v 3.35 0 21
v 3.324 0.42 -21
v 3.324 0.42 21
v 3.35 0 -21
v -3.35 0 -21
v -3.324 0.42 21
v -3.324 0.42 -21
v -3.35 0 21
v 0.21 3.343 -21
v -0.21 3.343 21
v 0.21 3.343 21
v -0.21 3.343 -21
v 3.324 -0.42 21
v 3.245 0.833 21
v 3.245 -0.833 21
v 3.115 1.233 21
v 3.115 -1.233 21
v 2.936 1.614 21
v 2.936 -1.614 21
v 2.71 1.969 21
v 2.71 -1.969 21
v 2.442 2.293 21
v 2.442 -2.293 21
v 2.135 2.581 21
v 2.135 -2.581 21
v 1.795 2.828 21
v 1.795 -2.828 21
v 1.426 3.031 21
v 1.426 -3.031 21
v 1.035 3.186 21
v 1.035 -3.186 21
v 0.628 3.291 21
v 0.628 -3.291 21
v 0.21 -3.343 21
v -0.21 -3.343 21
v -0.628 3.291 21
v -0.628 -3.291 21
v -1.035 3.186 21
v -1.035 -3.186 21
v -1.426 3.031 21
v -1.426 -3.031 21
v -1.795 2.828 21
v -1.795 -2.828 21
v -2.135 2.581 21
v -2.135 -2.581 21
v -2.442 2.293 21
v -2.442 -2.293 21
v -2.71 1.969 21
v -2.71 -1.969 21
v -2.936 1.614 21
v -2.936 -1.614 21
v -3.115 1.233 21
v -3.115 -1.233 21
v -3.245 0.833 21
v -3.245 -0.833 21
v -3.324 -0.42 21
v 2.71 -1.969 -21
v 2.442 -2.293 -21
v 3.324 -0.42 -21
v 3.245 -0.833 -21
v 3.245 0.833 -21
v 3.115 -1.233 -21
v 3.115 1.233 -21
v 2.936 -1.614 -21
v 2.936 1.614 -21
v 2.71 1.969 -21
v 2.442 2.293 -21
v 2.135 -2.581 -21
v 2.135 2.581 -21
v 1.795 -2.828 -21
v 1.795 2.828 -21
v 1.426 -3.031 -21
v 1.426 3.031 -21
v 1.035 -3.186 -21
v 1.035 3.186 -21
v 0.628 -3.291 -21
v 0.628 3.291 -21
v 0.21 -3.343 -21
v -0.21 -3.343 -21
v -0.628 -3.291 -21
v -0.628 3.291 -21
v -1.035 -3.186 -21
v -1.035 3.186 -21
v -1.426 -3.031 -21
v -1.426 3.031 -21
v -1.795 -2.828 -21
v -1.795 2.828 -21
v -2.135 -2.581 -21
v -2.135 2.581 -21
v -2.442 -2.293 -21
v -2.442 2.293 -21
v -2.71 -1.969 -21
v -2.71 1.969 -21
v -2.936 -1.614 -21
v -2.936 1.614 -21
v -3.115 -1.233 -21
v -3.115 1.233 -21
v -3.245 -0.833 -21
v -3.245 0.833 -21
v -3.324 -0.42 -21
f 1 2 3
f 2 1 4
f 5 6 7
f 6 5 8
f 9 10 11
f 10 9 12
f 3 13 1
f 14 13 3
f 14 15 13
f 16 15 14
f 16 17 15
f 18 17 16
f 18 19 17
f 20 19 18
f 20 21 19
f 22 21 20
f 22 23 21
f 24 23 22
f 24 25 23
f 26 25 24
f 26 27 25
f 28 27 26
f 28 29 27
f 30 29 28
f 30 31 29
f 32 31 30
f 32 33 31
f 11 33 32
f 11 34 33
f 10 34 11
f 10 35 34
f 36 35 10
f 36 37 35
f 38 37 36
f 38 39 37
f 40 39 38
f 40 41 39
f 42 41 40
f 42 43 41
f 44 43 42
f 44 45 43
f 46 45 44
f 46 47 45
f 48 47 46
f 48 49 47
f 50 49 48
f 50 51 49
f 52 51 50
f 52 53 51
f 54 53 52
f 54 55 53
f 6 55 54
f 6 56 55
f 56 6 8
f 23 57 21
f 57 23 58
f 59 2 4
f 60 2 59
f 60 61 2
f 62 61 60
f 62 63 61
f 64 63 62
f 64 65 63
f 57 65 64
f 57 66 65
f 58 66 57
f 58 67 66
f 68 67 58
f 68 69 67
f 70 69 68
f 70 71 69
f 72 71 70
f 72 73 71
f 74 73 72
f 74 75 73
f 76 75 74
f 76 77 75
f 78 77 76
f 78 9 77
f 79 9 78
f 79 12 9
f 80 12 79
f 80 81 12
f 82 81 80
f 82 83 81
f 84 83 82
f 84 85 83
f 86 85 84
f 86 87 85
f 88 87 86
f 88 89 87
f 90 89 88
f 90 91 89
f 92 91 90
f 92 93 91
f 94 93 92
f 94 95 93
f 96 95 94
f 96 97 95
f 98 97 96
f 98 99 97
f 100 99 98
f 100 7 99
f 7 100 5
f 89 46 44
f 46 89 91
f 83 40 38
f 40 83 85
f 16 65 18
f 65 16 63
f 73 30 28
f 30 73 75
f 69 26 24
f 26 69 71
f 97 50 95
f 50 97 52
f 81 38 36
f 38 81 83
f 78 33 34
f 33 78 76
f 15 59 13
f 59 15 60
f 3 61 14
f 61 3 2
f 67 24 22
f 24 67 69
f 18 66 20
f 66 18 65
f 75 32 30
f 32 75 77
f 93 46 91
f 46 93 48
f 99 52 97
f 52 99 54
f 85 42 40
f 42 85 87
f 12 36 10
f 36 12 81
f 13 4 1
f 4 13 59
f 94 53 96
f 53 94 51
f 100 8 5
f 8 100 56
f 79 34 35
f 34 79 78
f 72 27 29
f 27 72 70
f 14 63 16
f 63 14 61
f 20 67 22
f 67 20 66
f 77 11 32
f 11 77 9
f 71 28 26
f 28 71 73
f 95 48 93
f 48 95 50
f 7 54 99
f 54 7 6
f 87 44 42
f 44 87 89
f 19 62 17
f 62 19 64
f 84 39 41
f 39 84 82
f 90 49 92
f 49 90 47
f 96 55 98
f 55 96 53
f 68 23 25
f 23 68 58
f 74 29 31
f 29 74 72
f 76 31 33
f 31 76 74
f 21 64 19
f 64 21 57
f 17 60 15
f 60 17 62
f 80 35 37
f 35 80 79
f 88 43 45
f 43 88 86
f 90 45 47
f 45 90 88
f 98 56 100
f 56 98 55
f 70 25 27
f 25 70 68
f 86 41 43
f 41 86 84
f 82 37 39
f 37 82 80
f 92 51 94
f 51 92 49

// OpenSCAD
$fn = 50;


difference() {
	union() {
		translate(v = [0, 0, -21.0000000000]) {
			cylinder(h = 42, r = 3.3500000000);
		}
	}
	union() {
		translate(v = [0, 0, -100.0000000000]) {
			cylinder(h = 200, r = 0);
		}
	}
}
